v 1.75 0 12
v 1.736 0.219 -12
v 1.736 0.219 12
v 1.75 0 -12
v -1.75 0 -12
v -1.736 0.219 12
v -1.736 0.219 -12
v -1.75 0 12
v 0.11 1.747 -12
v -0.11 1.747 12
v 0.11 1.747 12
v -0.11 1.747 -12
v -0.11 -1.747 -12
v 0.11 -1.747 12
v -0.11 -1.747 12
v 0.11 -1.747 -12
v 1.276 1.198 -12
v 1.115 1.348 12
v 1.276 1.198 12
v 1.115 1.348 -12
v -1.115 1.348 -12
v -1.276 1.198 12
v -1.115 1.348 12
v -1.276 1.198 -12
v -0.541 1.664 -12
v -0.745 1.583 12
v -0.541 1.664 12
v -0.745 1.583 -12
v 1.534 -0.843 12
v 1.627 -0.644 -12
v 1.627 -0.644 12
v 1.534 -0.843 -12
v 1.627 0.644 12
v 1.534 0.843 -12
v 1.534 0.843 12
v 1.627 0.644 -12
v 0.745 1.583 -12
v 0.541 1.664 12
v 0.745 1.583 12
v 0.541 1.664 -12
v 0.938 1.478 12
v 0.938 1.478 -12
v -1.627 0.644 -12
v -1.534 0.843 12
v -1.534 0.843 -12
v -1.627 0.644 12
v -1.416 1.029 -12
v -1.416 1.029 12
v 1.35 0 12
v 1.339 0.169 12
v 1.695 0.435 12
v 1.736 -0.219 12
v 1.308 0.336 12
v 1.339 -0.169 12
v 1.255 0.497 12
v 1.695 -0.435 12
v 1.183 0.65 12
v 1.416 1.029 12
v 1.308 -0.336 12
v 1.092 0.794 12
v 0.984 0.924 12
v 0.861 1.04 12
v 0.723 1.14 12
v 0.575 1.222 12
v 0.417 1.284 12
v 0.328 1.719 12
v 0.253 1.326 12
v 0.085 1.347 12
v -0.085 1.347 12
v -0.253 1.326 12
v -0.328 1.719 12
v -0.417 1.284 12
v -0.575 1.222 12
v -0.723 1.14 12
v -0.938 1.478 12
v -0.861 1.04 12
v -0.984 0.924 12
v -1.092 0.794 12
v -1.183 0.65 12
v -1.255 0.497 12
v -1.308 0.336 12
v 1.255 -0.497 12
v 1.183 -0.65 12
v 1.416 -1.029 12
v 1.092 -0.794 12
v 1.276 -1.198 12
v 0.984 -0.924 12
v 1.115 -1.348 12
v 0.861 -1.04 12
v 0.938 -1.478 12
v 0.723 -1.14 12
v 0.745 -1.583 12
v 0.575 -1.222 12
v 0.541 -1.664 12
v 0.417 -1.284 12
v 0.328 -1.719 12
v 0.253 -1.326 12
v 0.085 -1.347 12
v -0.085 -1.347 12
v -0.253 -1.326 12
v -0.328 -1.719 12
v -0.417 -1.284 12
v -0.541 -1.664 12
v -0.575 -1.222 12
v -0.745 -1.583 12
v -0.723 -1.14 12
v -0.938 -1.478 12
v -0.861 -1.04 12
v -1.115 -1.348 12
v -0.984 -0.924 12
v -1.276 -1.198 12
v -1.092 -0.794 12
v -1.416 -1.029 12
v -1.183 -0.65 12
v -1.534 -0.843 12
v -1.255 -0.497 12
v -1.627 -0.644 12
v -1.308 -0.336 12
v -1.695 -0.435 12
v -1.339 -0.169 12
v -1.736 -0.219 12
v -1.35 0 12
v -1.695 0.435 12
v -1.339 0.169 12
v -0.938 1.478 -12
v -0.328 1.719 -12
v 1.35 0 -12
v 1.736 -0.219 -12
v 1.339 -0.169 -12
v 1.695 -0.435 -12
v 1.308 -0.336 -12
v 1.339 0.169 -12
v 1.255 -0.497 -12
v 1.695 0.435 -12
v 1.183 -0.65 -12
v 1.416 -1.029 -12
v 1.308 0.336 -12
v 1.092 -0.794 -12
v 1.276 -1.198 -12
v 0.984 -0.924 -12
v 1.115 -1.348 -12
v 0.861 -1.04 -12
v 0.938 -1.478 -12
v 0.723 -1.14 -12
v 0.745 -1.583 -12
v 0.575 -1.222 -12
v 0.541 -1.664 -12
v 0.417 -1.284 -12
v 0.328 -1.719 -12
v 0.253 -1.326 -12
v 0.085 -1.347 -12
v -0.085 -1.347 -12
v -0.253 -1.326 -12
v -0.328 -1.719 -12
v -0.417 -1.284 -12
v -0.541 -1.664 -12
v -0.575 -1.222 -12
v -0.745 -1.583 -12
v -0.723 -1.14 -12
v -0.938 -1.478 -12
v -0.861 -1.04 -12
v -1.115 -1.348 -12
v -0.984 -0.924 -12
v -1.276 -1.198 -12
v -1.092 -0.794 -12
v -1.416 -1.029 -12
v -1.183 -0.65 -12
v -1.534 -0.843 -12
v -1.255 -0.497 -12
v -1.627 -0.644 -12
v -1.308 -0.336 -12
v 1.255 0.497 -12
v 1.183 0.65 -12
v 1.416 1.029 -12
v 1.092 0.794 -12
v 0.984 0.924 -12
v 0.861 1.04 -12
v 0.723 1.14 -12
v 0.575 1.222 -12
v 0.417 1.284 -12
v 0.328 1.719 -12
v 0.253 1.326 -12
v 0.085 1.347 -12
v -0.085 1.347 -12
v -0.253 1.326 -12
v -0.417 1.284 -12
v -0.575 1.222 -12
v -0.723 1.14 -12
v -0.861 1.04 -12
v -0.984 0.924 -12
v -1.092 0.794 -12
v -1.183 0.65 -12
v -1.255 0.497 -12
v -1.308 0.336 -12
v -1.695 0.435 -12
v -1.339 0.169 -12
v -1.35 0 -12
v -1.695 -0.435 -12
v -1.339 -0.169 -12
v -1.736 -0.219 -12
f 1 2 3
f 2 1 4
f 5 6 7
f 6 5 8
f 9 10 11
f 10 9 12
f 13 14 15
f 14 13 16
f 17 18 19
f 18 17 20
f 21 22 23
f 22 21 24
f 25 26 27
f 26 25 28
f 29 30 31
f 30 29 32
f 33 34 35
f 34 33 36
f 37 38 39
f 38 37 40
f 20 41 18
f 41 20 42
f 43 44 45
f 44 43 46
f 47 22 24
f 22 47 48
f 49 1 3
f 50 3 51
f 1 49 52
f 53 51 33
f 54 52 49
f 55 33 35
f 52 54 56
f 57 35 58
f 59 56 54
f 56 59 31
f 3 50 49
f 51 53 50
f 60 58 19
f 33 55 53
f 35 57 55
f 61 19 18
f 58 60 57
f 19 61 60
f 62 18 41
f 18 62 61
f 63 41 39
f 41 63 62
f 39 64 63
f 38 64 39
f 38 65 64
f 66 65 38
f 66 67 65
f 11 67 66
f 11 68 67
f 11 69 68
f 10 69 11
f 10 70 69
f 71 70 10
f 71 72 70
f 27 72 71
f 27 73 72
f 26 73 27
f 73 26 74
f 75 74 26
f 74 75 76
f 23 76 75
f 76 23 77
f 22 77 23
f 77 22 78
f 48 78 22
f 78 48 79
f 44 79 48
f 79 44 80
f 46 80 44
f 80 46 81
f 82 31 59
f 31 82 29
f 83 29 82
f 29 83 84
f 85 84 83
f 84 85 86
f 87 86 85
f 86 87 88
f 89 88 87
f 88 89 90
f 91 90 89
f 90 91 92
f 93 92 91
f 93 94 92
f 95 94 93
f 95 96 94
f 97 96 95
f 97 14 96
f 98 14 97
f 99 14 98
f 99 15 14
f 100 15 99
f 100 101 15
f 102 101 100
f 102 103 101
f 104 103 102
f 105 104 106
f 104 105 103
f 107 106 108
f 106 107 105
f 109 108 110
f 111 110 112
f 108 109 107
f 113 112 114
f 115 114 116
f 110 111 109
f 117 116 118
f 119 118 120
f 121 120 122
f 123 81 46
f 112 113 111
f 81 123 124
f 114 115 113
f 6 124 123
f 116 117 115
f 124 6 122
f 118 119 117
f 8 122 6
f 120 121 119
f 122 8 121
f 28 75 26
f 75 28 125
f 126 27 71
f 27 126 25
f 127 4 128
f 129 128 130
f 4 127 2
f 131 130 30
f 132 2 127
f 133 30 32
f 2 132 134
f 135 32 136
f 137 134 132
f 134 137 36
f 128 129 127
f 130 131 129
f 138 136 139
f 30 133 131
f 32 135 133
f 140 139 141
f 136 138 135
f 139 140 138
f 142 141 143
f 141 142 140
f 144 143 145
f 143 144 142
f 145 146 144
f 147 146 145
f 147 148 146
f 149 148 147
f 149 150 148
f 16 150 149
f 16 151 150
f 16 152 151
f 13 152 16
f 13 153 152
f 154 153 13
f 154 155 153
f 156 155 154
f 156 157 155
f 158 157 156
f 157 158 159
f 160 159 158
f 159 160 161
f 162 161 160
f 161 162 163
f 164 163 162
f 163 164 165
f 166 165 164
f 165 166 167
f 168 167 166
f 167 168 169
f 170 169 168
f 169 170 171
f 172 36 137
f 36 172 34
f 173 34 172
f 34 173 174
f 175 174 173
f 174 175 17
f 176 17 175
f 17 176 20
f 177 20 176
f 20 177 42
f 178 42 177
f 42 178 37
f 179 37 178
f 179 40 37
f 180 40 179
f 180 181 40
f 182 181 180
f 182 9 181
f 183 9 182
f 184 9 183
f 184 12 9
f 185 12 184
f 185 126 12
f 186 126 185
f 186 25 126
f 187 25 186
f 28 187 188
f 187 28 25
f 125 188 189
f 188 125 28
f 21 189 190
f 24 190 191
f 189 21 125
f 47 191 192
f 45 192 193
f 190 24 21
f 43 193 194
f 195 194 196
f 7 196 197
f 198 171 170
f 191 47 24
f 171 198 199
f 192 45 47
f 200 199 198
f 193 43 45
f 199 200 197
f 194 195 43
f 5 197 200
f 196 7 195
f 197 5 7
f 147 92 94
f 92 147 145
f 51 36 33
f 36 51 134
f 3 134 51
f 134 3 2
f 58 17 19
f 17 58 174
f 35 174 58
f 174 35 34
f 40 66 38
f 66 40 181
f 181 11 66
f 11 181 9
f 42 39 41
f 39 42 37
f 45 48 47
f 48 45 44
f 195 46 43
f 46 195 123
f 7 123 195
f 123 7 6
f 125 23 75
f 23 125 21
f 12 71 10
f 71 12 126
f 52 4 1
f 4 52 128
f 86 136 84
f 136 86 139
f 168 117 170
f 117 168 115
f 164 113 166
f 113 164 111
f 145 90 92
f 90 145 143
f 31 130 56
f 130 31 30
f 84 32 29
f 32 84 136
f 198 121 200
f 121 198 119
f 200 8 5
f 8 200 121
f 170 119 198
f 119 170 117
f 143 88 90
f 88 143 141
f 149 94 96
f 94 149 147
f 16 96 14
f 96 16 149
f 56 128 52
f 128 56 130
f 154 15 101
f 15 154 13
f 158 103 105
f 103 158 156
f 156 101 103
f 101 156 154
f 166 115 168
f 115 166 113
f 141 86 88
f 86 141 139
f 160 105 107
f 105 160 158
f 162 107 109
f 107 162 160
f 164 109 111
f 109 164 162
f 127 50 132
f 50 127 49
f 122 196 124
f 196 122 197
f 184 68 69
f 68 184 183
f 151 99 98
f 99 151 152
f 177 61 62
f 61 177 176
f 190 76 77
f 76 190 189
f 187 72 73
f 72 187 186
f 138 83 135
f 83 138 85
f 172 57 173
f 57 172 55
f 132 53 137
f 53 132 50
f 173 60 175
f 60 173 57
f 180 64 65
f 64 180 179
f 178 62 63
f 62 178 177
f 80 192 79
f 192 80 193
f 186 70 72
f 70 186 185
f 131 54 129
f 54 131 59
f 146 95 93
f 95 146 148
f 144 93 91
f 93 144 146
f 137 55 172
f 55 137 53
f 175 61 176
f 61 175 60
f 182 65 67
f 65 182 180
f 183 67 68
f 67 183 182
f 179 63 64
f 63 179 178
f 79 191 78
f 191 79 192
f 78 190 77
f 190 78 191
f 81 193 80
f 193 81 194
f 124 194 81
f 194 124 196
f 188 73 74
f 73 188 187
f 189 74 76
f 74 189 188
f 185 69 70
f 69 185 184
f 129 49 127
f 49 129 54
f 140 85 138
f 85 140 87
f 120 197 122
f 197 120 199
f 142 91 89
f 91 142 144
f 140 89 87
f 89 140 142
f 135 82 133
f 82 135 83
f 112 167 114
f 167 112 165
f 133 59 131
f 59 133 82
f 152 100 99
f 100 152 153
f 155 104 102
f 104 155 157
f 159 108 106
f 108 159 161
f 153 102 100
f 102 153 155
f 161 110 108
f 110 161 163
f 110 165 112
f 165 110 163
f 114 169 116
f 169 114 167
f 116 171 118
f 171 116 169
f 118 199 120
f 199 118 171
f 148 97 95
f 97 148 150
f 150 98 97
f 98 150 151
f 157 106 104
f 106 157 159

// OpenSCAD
$fn = 50;


difference() {
	union() {
		translate(v = [0, 0, -12.0000000000]) {
			cylinder(h = 24, r = 1.7500000000);
		}
	}
	union() {
		translate(v = [0, 0, -100.0000000000]) {
			cylinder(h = 200, r = 1.3500000000);
		}
	}
}
